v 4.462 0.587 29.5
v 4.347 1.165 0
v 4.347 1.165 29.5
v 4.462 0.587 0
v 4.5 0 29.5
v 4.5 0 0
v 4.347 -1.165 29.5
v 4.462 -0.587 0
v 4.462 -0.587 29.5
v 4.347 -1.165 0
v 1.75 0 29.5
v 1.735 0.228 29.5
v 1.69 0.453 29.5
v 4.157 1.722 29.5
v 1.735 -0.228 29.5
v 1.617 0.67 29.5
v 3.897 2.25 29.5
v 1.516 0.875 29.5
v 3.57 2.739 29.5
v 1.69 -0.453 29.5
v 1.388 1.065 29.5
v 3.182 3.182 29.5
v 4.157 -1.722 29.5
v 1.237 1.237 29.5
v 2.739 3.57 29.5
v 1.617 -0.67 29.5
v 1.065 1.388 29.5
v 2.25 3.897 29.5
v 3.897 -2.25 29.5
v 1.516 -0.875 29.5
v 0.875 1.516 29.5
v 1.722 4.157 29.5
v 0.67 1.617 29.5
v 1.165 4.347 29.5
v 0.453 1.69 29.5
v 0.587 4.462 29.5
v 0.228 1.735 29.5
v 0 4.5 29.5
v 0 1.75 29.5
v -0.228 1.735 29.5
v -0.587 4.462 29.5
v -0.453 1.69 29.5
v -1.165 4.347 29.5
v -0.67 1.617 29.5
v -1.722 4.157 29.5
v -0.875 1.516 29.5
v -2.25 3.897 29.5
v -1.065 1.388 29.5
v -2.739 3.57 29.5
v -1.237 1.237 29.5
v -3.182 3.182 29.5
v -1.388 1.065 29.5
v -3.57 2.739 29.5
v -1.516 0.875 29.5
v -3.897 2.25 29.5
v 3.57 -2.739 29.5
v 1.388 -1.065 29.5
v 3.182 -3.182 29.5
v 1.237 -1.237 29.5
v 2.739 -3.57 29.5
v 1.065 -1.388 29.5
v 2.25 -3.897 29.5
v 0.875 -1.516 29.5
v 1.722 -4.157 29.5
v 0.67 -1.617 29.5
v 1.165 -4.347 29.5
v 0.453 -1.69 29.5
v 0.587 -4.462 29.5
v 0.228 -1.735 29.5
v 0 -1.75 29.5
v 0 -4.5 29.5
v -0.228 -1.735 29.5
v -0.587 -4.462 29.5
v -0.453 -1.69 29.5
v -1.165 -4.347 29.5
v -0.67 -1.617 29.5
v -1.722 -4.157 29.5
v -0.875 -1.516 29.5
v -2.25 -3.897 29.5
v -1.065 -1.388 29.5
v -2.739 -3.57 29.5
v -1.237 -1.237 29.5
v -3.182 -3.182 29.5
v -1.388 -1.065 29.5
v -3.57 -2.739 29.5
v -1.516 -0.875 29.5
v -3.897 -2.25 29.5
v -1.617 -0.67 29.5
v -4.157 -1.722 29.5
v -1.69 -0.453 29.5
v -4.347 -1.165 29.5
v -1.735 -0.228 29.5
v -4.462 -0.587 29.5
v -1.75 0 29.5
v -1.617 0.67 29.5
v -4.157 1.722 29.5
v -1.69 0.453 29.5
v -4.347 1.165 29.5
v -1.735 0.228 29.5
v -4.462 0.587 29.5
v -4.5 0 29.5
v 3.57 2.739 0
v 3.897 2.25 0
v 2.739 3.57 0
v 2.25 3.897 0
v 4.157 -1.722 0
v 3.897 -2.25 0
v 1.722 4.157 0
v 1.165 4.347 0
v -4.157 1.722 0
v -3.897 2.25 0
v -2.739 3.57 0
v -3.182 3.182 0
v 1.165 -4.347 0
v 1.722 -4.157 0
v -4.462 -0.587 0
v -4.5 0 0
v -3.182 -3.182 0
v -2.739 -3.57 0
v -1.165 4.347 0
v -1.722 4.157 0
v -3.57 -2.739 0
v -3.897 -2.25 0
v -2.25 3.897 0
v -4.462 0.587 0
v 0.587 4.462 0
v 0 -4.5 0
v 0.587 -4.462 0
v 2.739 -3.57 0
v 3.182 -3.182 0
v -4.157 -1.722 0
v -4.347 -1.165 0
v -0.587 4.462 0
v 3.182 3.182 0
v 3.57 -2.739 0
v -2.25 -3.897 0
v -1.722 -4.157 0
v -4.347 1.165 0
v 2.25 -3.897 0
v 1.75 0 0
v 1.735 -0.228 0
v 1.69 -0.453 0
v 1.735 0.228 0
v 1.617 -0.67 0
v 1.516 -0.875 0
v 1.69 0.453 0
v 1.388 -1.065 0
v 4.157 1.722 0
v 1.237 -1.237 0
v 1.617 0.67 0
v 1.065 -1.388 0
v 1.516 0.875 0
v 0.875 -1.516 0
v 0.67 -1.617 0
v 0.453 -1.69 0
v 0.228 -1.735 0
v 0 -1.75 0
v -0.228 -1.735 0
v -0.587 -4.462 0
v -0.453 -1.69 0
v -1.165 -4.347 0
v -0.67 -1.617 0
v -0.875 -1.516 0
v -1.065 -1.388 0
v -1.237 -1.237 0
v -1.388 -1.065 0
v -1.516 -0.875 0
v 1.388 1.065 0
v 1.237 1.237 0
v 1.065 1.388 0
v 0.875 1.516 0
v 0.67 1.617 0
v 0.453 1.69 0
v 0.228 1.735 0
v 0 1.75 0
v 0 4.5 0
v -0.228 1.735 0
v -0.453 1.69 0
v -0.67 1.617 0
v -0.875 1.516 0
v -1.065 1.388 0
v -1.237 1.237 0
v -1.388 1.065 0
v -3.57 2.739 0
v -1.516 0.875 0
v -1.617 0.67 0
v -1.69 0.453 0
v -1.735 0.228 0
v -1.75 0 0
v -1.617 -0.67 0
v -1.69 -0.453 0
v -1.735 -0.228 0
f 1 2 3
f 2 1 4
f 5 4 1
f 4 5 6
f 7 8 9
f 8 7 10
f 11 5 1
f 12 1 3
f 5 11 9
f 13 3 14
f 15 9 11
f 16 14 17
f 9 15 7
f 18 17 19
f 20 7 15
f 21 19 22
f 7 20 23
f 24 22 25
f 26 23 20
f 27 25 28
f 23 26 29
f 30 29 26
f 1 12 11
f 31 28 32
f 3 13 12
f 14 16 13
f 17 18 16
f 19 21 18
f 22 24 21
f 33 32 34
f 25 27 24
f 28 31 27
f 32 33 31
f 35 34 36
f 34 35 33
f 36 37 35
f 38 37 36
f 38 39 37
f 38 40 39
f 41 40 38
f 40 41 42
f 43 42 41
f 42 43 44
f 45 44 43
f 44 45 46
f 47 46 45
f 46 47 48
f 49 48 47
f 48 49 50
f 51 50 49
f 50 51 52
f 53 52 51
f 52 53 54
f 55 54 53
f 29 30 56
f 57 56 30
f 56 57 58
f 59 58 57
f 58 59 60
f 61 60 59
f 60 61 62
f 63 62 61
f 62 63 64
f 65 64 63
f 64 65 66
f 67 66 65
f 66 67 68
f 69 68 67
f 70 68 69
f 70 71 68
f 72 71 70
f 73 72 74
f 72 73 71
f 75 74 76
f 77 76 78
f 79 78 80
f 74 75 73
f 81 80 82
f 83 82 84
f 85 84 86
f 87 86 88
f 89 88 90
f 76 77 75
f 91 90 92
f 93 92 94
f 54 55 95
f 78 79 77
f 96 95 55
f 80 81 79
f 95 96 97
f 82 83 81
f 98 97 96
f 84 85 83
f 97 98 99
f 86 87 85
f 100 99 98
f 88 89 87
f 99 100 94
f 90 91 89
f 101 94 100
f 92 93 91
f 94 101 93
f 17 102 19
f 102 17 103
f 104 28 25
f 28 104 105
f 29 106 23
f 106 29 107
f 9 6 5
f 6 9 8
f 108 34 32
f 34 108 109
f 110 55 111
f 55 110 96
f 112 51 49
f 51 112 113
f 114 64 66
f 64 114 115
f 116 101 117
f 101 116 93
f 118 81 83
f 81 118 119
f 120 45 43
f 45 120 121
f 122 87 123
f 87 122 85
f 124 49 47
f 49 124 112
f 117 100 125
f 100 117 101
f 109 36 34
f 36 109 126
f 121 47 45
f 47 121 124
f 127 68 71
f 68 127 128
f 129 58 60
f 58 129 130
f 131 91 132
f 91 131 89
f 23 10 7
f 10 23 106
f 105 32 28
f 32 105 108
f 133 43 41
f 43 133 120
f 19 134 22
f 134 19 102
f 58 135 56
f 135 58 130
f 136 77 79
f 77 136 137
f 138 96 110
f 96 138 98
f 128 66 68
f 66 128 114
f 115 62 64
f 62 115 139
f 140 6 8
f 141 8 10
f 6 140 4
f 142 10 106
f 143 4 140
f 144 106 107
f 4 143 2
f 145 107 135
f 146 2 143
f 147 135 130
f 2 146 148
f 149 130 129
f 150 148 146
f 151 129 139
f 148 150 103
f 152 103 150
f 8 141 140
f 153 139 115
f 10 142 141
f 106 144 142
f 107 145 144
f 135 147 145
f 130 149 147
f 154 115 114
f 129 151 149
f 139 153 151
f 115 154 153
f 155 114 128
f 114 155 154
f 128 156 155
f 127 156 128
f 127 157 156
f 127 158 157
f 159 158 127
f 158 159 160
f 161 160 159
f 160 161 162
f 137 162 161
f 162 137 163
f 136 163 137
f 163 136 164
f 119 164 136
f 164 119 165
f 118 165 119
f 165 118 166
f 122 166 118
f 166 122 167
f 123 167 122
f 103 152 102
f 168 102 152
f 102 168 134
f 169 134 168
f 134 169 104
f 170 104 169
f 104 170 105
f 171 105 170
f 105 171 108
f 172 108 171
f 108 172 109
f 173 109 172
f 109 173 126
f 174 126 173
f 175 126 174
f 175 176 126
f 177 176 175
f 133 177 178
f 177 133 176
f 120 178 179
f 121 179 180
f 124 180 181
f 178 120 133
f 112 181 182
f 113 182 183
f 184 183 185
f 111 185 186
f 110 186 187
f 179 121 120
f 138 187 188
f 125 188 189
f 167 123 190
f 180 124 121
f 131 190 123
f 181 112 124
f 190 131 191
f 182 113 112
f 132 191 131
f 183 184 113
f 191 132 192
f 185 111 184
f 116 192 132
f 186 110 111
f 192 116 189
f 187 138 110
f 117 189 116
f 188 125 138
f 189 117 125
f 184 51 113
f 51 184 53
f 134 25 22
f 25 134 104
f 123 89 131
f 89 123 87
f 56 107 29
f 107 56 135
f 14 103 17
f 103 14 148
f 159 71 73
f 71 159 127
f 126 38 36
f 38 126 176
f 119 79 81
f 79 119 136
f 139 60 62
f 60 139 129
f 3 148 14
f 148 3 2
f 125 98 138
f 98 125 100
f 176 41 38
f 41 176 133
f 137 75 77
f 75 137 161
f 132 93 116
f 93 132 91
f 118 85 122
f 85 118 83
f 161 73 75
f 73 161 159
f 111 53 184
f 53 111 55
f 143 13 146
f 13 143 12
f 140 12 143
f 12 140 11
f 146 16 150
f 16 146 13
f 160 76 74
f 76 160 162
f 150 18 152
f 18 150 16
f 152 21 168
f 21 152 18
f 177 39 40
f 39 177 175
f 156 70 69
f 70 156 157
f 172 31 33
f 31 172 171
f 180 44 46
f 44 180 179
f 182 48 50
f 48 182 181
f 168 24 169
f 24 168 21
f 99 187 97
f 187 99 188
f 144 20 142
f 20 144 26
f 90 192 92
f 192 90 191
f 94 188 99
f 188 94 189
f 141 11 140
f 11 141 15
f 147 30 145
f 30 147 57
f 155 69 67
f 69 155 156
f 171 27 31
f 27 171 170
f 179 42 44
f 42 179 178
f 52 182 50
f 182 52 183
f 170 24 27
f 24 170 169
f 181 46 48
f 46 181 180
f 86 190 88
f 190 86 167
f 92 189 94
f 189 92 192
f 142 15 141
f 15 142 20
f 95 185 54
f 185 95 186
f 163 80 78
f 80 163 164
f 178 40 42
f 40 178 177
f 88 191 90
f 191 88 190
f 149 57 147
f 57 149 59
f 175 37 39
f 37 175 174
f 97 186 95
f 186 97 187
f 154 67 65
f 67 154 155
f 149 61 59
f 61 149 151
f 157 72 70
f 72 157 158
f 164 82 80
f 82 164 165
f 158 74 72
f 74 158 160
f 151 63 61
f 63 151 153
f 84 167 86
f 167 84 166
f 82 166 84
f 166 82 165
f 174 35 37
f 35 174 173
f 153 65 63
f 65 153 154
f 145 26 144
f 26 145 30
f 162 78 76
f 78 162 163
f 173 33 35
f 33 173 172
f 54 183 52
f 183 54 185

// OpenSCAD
// Gen-CJ — frame standoff tube between stator and an endbell, on each M3 frame rod (outside rotor OD).
// Print x4. Height = frame_standoff_h (rotor + steel + hub + collar + running clearance).
include <parameters.scad>;
$fn = 48;
difference() {
    cylinder(d=standoff_od, h=frame_standoff_h);
    translate([0, 0, -0.1]) cylinder(d=m3_clear, h=frame_standoff_h + 0.2);
}
